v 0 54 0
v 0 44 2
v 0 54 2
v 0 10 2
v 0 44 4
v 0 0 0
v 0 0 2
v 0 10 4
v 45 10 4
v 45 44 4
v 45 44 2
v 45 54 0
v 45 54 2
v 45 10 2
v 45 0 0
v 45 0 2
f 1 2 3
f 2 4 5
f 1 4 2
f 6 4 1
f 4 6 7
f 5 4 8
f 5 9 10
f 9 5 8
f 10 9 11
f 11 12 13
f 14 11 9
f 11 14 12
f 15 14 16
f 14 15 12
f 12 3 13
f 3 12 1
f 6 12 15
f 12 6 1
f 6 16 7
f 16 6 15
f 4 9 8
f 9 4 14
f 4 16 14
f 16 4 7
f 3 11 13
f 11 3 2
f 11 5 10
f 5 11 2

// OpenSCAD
difference() {
    cube([45,54,4]);
    translate([0, 0, 2])
        cube([45, 10, 2]);
    translate([0, 54 - 10, 2])
        cube([45, 10, 2]);
};
